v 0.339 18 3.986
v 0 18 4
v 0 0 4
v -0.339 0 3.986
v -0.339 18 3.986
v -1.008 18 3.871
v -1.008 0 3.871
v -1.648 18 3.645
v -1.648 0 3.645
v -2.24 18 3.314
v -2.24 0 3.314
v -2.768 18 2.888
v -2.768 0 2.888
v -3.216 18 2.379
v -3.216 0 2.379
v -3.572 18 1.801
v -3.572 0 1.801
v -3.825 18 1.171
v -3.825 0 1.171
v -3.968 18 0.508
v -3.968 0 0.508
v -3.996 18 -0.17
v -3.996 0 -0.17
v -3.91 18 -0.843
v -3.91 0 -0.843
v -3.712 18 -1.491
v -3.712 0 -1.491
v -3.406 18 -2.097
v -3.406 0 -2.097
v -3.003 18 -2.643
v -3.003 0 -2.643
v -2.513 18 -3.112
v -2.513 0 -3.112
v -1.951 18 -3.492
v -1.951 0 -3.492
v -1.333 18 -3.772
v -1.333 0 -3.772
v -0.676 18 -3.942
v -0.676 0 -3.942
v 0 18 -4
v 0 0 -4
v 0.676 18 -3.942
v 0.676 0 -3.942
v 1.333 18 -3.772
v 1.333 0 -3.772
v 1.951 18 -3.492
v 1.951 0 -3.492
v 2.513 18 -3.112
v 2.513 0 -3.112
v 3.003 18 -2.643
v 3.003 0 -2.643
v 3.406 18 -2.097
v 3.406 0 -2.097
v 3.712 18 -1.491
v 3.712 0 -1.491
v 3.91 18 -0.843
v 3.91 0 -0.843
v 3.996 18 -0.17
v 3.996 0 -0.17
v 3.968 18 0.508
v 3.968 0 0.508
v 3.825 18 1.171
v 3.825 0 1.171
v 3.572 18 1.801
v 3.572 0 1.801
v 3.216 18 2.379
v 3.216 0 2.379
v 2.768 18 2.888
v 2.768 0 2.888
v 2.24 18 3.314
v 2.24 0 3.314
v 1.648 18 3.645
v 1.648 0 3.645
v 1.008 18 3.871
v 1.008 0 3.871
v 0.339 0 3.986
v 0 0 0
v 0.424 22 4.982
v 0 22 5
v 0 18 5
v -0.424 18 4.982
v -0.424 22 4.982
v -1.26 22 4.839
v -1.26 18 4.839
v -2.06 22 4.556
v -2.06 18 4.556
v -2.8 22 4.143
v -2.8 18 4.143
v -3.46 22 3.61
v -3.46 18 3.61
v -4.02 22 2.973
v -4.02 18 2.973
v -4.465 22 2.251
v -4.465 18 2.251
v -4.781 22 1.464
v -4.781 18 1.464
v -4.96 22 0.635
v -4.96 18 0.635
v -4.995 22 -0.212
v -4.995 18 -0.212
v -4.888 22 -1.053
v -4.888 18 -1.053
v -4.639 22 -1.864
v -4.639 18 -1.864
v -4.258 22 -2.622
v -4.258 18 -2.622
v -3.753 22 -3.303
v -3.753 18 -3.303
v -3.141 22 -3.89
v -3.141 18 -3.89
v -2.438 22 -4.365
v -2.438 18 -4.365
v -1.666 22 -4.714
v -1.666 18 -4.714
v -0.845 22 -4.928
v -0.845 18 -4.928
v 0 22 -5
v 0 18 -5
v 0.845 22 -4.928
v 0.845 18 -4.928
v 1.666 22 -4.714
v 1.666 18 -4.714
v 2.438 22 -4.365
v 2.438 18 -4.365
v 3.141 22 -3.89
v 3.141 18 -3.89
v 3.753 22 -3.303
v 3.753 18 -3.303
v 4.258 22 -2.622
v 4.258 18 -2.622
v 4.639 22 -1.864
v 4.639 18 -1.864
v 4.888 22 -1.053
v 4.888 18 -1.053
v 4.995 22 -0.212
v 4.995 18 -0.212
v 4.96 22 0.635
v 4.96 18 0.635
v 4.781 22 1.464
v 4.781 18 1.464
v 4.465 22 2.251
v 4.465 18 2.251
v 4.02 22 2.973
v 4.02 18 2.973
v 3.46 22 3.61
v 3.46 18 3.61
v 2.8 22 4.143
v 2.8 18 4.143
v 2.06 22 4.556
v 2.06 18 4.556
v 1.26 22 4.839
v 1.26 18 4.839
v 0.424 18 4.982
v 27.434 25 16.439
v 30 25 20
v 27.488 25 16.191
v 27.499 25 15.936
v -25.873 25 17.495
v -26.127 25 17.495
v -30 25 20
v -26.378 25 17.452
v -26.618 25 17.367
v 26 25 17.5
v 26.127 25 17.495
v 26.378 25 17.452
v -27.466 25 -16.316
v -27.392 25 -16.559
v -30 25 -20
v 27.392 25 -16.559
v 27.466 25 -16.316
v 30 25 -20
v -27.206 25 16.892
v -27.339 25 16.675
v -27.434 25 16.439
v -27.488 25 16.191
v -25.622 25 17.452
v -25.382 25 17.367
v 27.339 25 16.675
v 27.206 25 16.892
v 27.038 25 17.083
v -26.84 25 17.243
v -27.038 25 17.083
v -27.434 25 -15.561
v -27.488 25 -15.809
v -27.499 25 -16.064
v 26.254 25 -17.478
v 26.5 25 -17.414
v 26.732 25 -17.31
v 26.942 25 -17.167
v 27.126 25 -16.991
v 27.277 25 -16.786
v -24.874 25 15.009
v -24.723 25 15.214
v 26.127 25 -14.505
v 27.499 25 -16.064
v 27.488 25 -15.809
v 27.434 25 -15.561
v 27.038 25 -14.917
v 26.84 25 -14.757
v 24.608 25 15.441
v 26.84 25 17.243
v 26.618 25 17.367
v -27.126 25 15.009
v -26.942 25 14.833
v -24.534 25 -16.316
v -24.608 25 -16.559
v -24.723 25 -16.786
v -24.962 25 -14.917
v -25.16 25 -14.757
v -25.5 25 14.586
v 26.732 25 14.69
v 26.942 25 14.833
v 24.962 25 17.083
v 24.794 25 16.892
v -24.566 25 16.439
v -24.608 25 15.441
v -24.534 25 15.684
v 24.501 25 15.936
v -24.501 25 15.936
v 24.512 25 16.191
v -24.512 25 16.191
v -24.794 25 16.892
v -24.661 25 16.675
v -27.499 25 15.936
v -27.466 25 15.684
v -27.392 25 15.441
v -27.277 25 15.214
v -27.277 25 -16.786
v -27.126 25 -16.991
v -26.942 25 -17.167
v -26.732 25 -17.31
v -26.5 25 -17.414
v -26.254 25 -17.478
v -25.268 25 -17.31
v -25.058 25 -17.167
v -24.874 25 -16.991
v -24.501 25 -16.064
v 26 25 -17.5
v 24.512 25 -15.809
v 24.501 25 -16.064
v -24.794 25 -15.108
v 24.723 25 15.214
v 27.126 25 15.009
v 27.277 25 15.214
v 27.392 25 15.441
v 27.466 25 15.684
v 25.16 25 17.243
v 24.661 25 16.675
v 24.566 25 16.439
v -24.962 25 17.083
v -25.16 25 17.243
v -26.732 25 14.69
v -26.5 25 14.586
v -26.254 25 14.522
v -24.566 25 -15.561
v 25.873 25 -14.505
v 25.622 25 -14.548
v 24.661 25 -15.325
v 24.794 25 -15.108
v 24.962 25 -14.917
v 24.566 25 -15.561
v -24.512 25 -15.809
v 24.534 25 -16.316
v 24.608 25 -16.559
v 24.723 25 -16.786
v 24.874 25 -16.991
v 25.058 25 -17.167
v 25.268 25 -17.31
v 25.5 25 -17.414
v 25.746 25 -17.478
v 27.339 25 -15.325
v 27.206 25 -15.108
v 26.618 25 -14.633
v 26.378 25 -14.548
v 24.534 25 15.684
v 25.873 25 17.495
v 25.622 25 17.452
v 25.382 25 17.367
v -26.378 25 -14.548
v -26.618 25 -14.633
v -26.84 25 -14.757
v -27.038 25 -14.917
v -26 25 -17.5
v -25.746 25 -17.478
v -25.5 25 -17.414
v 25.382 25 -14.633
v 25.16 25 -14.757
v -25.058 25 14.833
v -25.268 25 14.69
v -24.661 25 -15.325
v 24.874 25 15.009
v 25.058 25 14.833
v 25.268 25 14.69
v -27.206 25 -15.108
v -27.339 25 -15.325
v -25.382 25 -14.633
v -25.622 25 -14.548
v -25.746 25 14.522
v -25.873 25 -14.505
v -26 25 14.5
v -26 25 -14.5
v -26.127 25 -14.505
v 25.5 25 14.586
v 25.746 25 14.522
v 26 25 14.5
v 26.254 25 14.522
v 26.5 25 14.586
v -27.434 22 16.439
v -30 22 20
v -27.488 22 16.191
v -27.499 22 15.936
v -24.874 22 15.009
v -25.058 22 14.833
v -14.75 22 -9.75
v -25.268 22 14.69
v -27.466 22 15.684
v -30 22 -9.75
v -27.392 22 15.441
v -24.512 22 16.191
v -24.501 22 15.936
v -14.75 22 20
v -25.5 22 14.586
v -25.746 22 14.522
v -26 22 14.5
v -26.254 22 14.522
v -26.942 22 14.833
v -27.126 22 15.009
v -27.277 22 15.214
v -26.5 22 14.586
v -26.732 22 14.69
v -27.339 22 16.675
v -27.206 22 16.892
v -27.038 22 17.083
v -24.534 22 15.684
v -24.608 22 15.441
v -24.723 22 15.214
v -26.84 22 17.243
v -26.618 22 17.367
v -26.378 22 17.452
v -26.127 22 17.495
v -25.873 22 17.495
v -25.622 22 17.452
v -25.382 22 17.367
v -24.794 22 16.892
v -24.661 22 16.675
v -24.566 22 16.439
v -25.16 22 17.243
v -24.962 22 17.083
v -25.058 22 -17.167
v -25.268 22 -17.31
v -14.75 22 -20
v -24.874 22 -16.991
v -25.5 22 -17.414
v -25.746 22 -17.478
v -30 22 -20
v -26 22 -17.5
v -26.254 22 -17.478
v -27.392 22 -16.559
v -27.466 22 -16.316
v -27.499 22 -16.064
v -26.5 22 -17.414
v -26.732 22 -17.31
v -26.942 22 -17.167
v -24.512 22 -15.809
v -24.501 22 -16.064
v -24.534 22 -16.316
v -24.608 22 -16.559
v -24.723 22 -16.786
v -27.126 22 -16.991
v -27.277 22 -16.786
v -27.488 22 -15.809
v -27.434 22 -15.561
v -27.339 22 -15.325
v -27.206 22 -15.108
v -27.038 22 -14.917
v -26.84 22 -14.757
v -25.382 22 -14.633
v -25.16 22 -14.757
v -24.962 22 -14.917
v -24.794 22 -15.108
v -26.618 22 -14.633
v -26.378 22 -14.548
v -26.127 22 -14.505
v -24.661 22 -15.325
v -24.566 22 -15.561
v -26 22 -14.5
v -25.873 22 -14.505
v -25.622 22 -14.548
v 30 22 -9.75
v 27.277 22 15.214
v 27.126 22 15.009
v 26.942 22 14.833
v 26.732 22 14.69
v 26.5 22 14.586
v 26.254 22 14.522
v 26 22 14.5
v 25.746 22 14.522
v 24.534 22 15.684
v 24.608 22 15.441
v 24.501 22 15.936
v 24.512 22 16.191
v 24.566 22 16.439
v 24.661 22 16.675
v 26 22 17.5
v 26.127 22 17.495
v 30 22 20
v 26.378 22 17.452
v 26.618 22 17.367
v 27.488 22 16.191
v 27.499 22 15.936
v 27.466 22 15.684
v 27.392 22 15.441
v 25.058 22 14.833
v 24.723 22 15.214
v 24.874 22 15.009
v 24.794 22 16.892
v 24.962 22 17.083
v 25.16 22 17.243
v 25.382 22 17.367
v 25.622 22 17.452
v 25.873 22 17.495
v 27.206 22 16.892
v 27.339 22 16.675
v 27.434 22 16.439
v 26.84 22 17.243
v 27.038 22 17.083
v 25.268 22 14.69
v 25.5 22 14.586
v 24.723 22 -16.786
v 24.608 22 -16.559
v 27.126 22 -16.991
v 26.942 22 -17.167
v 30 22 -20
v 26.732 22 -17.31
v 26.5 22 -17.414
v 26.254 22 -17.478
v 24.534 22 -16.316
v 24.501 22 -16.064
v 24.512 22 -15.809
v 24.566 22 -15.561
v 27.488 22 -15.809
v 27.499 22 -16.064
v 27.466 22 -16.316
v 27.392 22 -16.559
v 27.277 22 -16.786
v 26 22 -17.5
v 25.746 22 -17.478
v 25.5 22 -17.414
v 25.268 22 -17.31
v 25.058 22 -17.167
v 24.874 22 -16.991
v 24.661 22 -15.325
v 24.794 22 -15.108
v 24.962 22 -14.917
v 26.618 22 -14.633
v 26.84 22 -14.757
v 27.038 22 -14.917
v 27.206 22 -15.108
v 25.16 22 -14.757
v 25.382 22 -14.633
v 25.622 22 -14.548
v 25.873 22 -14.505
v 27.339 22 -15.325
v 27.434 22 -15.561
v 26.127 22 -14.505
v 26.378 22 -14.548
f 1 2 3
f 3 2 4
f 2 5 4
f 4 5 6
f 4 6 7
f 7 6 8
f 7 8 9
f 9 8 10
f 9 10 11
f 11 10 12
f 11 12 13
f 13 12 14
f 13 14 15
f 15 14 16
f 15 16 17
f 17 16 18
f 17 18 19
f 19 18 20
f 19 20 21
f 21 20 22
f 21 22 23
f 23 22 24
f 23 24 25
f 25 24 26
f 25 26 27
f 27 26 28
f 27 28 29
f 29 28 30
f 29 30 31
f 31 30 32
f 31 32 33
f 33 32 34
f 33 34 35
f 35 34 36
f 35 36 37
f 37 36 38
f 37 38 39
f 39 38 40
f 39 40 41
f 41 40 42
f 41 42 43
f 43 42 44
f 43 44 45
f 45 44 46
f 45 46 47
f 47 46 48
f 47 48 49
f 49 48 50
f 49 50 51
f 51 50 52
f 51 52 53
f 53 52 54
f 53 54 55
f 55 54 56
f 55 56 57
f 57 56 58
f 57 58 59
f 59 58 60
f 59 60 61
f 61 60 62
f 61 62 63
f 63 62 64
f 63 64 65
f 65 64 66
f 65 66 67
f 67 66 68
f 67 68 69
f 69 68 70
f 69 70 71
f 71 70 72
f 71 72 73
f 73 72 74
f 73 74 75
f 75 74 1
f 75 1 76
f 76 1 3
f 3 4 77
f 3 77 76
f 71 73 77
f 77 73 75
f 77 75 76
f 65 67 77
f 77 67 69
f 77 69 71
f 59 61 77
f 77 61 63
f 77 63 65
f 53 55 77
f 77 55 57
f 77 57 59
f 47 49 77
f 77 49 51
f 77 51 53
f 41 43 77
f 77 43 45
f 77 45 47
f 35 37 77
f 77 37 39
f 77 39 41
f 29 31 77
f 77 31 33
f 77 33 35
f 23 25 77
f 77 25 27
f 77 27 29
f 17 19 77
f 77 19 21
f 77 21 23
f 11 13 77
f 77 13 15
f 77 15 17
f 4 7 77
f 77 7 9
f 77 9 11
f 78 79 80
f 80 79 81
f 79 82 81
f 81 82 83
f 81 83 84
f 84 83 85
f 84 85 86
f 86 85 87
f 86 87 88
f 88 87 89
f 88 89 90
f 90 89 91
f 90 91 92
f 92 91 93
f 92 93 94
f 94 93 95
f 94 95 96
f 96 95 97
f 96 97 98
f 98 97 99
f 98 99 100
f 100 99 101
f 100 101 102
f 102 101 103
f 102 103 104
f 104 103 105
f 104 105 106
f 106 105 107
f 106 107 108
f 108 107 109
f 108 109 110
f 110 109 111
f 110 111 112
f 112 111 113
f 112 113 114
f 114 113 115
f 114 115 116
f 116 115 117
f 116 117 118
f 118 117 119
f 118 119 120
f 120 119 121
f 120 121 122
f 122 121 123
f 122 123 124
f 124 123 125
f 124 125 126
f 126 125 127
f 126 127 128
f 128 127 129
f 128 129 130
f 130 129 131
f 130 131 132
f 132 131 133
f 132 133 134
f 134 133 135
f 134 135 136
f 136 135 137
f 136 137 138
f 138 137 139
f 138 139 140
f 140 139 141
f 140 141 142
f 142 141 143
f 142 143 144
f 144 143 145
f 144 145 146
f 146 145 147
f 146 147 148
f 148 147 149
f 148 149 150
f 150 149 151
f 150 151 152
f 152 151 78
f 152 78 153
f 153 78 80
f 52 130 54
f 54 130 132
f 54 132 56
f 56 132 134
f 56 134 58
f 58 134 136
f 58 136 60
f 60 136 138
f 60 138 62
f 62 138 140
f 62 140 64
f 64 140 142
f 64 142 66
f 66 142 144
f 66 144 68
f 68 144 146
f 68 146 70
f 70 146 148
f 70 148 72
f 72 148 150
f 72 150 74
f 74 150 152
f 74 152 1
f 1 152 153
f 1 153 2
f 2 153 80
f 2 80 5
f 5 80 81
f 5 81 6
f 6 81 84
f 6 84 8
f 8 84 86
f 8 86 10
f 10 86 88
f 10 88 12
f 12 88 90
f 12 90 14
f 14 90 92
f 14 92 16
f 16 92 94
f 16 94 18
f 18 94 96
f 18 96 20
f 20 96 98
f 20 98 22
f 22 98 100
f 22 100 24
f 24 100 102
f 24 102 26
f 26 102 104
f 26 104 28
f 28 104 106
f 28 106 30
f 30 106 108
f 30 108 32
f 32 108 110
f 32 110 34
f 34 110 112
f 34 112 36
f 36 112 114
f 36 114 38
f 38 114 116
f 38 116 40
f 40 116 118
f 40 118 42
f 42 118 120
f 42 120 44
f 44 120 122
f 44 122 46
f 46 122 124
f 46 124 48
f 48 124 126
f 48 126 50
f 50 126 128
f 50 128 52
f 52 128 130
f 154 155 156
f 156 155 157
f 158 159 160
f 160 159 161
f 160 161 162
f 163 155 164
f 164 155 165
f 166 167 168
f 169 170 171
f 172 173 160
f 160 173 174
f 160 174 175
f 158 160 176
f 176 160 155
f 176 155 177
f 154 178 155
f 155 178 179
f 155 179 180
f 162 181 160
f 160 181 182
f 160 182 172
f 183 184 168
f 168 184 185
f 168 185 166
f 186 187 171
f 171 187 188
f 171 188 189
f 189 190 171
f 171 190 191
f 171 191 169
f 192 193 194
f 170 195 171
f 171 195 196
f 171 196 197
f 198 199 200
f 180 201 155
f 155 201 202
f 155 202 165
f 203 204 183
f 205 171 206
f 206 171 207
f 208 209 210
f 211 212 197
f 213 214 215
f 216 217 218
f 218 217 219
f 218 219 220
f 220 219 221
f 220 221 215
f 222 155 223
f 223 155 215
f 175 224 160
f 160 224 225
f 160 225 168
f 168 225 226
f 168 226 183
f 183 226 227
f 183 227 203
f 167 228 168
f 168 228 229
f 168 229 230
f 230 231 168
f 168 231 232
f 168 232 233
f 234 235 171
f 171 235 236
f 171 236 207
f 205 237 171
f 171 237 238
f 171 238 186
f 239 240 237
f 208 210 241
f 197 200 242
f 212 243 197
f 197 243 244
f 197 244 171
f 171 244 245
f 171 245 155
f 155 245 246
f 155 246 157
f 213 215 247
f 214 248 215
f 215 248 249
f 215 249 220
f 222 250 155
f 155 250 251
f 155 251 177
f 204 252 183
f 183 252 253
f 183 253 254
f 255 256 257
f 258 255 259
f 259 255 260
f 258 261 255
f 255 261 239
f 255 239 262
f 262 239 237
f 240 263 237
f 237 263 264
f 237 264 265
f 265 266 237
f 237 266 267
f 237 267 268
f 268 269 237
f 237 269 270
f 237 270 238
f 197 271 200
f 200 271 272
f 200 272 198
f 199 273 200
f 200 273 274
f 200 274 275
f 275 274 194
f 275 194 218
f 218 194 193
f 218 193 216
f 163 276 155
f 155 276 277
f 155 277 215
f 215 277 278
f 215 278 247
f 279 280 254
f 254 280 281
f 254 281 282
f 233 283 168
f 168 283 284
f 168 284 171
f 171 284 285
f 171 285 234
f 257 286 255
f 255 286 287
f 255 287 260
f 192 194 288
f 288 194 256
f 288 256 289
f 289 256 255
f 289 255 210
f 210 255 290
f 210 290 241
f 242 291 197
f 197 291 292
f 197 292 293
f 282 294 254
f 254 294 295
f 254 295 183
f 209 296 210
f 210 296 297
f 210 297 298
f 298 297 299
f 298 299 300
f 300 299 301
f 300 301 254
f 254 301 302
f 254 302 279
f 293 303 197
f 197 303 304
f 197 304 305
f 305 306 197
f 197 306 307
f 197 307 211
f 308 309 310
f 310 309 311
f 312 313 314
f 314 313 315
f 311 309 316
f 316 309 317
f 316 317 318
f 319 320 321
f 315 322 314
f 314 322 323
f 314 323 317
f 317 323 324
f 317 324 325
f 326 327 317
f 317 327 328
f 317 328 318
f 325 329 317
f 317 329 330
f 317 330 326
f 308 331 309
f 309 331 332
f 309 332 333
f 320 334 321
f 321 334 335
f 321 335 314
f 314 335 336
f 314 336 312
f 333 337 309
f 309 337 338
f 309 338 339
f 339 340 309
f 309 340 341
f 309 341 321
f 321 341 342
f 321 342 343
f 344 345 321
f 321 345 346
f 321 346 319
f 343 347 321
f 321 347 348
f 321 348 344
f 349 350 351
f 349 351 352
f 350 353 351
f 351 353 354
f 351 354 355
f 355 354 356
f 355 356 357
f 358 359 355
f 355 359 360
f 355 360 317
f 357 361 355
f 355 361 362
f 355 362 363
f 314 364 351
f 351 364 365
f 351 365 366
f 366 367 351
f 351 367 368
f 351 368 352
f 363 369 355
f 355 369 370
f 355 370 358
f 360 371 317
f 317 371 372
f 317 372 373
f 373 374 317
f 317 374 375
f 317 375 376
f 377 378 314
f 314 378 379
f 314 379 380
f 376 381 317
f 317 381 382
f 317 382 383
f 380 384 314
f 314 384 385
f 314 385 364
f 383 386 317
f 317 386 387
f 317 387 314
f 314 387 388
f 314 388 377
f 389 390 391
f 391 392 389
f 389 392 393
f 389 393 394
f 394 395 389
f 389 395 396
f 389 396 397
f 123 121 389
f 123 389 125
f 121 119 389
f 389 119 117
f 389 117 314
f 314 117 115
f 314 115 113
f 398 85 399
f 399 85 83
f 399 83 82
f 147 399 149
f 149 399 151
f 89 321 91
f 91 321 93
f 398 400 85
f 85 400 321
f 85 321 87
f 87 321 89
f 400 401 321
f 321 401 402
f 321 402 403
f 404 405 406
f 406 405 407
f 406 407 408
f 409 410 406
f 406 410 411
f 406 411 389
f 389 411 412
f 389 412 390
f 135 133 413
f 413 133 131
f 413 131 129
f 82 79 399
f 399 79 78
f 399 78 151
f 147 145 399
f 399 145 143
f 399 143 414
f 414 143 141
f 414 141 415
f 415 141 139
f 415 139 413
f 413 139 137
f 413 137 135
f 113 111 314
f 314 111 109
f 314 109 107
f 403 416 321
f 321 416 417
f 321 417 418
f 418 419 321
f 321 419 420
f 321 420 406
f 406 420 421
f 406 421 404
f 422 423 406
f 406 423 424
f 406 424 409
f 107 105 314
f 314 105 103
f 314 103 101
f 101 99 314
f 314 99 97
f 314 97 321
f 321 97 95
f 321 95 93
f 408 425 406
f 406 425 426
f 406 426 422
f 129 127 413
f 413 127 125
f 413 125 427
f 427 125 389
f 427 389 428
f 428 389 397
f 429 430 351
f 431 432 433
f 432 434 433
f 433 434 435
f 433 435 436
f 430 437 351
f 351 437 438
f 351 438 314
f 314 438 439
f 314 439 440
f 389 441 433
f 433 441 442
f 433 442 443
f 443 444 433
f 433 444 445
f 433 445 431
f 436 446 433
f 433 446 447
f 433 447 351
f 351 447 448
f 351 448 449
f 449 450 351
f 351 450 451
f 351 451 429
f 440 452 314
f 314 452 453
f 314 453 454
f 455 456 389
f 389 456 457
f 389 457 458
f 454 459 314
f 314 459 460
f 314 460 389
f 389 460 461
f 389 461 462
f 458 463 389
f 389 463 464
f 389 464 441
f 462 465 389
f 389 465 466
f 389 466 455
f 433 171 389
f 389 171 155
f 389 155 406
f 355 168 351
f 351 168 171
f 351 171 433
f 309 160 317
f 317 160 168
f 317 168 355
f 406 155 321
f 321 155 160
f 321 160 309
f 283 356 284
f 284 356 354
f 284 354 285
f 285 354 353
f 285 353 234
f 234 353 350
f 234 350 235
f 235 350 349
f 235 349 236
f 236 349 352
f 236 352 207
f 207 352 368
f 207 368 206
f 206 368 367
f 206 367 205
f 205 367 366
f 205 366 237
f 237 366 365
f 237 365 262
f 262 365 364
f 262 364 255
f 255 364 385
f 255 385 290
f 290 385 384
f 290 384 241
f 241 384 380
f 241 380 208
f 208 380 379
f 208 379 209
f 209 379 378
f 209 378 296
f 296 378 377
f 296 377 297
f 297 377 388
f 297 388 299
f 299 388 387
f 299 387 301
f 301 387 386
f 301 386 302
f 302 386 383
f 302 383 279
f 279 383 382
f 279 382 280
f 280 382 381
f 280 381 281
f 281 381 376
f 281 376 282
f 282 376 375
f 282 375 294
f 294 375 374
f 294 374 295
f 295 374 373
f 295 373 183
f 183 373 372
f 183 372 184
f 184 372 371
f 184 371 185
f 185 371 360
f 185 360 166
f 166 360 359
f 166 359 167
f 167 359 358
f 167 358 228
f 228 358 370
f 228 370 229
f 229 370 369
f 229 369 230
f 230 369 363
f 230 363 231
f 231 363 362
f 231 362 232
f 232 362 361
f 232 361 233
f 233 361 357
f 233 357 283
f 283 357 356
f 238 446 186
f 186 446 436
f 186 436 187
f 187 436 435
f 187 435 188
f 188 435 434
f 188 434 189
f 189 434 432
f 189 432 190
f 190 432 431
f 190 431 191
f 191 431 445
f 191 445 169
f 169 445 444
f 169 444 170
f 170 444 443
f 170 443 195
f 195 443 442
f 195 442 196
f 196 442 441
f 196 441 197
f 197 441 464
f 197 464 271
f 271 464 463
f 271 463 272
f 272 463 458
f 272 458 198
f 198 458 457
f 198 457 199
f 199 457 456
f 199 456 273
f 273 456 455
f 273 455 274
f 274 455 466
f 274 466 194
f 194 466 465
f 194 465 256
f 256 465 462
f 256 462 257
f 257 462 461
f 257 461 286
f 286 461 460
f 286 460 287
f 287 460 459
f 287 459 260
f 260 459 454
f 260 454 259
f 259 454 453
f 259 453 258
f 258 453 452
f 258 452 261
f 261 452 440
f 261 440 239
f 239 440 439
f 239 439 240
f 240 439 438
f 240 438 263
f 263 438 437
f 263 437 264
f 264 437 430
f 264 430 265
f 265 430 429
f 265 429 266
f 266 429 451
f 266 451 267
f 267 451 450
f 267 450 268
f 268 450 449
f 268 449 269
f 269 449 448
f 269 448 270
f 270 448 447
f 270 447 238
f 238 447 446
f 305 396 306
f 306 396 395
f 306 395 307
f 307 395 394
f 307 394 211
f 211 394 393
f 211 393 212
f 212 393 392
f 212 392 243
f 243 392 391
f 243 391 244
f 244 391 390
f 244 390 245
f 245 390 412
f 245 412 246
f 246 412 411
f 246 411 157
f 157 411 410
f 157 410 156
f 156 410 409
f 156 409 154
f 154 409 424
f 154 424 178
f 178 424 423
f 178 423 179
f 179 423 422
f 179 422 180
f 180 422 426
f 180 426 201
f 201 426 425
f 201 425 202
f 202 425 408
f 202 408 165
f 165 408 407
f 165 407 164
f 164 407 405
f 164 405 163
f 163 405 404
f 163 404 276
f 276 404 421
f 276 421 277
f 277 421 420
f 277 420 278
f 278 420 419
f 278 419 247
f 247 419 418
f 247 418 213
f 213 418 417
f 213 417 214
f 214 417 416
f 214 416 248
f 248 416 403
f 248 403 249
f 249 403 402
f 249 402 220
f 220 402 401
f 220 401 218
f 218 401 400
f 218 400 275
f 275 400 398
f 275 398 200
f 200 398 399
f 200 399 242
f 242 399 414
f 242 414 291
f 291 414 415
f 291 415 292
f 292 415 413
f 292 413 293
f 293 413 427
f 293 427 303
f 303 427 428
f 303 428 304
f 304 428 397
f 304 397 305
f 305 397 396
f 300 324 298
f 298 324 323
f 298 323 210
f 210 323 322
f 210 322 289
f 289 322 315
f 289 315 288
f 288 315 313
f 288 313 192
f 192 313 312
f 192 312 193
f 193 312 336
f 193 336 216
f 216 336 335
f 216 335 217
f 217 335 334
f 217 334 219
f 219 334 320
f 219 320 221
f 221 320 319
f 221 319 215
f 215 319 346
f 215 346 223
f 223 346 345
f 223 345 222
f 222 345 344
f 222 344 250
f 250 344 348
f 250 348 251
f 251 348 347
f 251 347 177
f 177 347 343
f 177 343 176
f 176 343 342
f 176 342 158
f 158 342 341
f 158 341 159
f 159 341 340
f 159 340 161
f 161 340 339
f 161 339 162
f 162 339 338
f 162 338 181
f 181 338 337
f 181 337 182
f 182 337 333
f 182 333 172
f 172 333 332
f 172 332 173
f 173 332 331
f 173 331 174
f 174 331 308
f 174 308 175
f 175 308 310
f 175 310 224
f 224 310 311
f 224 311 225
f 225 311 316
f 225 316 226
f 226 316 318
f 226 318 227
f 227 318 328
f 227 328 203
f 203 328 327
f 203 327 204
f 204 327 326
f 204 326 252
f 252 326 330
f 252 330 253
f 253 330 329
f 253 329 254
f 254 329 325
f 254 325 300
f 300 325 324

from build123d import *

# Parameters (mm, degrees)
SKETCH1_R           = 4
BOSS_EXTRUDE1_DEPTH = 18
SKETCH2_R           = 5
BOSS_EXTRUDE2_DEPTH = 4
SKETCH3_W           = 60
SKETCH3_H           = 40
SKETCH3_R           = 1.5
BOSS_EXTRUDE3_DEPTH = 3


with BuildPart() as part:
    # Sketch1 → Boss-Extrude1 (new body)
    with BuildSketch(Plane(origin=(0, 0, 0), x_dir=(1, 0, 0), z_dir=(0, 1, 0))):
        with Locations(Location((0, 0, 0), (0, 0, 270))):
            Circle(SKETCH1_R)
    extrude(amount=BOSS_EXTRUDE1_DEPTH)

    # Sketch2 → Boss-Extrude2 (add)
    with BuildSketch(Plane(origin=(0, 18, 0), x_dir=(1, 0, 0), z_dir=(0, 1, 0))):
        with Locations(Location((0, 0, 0), (0, 0, 270))):
            Circle(SKETCH2_R)
    extrude(amount=BOSS_EXTRUDE2_DEPTH)

    # Sketch3 → Boss-Extrude3 (add)
    with BuildSketch(Plane(origin=(0, 22, 0), x_dir=(1, 0, 0), z_dir=(0, 1, 0))):
        Rectangle(SKETCH3_W, SKETCH3_H)
        with Locations(Location((-26, 16, 0), (0, 0, 270))):
            Circle(SKETCH3_R, mode=Mode.SUBTRACT)
        with Locations(Location((26, 16, 0), (0, 0, 90))):
            Circle(SKETCH3_R, mode=Mode.SUBTRACT)
        with Locations(Location((26, -16, 0), (0, 0, 270))):
            Circle(SKETCH3_R, mode=Mode.SUBTRACT)
        with Locations(Location((-26, -16, 0), (0, 0, 90))):
            Circle(SKETCH3_R, mode=Mode.SUBTRACT)
    extrude(amount=BOSS_EXTRUDE3_DEPTH)


solid = part.part
